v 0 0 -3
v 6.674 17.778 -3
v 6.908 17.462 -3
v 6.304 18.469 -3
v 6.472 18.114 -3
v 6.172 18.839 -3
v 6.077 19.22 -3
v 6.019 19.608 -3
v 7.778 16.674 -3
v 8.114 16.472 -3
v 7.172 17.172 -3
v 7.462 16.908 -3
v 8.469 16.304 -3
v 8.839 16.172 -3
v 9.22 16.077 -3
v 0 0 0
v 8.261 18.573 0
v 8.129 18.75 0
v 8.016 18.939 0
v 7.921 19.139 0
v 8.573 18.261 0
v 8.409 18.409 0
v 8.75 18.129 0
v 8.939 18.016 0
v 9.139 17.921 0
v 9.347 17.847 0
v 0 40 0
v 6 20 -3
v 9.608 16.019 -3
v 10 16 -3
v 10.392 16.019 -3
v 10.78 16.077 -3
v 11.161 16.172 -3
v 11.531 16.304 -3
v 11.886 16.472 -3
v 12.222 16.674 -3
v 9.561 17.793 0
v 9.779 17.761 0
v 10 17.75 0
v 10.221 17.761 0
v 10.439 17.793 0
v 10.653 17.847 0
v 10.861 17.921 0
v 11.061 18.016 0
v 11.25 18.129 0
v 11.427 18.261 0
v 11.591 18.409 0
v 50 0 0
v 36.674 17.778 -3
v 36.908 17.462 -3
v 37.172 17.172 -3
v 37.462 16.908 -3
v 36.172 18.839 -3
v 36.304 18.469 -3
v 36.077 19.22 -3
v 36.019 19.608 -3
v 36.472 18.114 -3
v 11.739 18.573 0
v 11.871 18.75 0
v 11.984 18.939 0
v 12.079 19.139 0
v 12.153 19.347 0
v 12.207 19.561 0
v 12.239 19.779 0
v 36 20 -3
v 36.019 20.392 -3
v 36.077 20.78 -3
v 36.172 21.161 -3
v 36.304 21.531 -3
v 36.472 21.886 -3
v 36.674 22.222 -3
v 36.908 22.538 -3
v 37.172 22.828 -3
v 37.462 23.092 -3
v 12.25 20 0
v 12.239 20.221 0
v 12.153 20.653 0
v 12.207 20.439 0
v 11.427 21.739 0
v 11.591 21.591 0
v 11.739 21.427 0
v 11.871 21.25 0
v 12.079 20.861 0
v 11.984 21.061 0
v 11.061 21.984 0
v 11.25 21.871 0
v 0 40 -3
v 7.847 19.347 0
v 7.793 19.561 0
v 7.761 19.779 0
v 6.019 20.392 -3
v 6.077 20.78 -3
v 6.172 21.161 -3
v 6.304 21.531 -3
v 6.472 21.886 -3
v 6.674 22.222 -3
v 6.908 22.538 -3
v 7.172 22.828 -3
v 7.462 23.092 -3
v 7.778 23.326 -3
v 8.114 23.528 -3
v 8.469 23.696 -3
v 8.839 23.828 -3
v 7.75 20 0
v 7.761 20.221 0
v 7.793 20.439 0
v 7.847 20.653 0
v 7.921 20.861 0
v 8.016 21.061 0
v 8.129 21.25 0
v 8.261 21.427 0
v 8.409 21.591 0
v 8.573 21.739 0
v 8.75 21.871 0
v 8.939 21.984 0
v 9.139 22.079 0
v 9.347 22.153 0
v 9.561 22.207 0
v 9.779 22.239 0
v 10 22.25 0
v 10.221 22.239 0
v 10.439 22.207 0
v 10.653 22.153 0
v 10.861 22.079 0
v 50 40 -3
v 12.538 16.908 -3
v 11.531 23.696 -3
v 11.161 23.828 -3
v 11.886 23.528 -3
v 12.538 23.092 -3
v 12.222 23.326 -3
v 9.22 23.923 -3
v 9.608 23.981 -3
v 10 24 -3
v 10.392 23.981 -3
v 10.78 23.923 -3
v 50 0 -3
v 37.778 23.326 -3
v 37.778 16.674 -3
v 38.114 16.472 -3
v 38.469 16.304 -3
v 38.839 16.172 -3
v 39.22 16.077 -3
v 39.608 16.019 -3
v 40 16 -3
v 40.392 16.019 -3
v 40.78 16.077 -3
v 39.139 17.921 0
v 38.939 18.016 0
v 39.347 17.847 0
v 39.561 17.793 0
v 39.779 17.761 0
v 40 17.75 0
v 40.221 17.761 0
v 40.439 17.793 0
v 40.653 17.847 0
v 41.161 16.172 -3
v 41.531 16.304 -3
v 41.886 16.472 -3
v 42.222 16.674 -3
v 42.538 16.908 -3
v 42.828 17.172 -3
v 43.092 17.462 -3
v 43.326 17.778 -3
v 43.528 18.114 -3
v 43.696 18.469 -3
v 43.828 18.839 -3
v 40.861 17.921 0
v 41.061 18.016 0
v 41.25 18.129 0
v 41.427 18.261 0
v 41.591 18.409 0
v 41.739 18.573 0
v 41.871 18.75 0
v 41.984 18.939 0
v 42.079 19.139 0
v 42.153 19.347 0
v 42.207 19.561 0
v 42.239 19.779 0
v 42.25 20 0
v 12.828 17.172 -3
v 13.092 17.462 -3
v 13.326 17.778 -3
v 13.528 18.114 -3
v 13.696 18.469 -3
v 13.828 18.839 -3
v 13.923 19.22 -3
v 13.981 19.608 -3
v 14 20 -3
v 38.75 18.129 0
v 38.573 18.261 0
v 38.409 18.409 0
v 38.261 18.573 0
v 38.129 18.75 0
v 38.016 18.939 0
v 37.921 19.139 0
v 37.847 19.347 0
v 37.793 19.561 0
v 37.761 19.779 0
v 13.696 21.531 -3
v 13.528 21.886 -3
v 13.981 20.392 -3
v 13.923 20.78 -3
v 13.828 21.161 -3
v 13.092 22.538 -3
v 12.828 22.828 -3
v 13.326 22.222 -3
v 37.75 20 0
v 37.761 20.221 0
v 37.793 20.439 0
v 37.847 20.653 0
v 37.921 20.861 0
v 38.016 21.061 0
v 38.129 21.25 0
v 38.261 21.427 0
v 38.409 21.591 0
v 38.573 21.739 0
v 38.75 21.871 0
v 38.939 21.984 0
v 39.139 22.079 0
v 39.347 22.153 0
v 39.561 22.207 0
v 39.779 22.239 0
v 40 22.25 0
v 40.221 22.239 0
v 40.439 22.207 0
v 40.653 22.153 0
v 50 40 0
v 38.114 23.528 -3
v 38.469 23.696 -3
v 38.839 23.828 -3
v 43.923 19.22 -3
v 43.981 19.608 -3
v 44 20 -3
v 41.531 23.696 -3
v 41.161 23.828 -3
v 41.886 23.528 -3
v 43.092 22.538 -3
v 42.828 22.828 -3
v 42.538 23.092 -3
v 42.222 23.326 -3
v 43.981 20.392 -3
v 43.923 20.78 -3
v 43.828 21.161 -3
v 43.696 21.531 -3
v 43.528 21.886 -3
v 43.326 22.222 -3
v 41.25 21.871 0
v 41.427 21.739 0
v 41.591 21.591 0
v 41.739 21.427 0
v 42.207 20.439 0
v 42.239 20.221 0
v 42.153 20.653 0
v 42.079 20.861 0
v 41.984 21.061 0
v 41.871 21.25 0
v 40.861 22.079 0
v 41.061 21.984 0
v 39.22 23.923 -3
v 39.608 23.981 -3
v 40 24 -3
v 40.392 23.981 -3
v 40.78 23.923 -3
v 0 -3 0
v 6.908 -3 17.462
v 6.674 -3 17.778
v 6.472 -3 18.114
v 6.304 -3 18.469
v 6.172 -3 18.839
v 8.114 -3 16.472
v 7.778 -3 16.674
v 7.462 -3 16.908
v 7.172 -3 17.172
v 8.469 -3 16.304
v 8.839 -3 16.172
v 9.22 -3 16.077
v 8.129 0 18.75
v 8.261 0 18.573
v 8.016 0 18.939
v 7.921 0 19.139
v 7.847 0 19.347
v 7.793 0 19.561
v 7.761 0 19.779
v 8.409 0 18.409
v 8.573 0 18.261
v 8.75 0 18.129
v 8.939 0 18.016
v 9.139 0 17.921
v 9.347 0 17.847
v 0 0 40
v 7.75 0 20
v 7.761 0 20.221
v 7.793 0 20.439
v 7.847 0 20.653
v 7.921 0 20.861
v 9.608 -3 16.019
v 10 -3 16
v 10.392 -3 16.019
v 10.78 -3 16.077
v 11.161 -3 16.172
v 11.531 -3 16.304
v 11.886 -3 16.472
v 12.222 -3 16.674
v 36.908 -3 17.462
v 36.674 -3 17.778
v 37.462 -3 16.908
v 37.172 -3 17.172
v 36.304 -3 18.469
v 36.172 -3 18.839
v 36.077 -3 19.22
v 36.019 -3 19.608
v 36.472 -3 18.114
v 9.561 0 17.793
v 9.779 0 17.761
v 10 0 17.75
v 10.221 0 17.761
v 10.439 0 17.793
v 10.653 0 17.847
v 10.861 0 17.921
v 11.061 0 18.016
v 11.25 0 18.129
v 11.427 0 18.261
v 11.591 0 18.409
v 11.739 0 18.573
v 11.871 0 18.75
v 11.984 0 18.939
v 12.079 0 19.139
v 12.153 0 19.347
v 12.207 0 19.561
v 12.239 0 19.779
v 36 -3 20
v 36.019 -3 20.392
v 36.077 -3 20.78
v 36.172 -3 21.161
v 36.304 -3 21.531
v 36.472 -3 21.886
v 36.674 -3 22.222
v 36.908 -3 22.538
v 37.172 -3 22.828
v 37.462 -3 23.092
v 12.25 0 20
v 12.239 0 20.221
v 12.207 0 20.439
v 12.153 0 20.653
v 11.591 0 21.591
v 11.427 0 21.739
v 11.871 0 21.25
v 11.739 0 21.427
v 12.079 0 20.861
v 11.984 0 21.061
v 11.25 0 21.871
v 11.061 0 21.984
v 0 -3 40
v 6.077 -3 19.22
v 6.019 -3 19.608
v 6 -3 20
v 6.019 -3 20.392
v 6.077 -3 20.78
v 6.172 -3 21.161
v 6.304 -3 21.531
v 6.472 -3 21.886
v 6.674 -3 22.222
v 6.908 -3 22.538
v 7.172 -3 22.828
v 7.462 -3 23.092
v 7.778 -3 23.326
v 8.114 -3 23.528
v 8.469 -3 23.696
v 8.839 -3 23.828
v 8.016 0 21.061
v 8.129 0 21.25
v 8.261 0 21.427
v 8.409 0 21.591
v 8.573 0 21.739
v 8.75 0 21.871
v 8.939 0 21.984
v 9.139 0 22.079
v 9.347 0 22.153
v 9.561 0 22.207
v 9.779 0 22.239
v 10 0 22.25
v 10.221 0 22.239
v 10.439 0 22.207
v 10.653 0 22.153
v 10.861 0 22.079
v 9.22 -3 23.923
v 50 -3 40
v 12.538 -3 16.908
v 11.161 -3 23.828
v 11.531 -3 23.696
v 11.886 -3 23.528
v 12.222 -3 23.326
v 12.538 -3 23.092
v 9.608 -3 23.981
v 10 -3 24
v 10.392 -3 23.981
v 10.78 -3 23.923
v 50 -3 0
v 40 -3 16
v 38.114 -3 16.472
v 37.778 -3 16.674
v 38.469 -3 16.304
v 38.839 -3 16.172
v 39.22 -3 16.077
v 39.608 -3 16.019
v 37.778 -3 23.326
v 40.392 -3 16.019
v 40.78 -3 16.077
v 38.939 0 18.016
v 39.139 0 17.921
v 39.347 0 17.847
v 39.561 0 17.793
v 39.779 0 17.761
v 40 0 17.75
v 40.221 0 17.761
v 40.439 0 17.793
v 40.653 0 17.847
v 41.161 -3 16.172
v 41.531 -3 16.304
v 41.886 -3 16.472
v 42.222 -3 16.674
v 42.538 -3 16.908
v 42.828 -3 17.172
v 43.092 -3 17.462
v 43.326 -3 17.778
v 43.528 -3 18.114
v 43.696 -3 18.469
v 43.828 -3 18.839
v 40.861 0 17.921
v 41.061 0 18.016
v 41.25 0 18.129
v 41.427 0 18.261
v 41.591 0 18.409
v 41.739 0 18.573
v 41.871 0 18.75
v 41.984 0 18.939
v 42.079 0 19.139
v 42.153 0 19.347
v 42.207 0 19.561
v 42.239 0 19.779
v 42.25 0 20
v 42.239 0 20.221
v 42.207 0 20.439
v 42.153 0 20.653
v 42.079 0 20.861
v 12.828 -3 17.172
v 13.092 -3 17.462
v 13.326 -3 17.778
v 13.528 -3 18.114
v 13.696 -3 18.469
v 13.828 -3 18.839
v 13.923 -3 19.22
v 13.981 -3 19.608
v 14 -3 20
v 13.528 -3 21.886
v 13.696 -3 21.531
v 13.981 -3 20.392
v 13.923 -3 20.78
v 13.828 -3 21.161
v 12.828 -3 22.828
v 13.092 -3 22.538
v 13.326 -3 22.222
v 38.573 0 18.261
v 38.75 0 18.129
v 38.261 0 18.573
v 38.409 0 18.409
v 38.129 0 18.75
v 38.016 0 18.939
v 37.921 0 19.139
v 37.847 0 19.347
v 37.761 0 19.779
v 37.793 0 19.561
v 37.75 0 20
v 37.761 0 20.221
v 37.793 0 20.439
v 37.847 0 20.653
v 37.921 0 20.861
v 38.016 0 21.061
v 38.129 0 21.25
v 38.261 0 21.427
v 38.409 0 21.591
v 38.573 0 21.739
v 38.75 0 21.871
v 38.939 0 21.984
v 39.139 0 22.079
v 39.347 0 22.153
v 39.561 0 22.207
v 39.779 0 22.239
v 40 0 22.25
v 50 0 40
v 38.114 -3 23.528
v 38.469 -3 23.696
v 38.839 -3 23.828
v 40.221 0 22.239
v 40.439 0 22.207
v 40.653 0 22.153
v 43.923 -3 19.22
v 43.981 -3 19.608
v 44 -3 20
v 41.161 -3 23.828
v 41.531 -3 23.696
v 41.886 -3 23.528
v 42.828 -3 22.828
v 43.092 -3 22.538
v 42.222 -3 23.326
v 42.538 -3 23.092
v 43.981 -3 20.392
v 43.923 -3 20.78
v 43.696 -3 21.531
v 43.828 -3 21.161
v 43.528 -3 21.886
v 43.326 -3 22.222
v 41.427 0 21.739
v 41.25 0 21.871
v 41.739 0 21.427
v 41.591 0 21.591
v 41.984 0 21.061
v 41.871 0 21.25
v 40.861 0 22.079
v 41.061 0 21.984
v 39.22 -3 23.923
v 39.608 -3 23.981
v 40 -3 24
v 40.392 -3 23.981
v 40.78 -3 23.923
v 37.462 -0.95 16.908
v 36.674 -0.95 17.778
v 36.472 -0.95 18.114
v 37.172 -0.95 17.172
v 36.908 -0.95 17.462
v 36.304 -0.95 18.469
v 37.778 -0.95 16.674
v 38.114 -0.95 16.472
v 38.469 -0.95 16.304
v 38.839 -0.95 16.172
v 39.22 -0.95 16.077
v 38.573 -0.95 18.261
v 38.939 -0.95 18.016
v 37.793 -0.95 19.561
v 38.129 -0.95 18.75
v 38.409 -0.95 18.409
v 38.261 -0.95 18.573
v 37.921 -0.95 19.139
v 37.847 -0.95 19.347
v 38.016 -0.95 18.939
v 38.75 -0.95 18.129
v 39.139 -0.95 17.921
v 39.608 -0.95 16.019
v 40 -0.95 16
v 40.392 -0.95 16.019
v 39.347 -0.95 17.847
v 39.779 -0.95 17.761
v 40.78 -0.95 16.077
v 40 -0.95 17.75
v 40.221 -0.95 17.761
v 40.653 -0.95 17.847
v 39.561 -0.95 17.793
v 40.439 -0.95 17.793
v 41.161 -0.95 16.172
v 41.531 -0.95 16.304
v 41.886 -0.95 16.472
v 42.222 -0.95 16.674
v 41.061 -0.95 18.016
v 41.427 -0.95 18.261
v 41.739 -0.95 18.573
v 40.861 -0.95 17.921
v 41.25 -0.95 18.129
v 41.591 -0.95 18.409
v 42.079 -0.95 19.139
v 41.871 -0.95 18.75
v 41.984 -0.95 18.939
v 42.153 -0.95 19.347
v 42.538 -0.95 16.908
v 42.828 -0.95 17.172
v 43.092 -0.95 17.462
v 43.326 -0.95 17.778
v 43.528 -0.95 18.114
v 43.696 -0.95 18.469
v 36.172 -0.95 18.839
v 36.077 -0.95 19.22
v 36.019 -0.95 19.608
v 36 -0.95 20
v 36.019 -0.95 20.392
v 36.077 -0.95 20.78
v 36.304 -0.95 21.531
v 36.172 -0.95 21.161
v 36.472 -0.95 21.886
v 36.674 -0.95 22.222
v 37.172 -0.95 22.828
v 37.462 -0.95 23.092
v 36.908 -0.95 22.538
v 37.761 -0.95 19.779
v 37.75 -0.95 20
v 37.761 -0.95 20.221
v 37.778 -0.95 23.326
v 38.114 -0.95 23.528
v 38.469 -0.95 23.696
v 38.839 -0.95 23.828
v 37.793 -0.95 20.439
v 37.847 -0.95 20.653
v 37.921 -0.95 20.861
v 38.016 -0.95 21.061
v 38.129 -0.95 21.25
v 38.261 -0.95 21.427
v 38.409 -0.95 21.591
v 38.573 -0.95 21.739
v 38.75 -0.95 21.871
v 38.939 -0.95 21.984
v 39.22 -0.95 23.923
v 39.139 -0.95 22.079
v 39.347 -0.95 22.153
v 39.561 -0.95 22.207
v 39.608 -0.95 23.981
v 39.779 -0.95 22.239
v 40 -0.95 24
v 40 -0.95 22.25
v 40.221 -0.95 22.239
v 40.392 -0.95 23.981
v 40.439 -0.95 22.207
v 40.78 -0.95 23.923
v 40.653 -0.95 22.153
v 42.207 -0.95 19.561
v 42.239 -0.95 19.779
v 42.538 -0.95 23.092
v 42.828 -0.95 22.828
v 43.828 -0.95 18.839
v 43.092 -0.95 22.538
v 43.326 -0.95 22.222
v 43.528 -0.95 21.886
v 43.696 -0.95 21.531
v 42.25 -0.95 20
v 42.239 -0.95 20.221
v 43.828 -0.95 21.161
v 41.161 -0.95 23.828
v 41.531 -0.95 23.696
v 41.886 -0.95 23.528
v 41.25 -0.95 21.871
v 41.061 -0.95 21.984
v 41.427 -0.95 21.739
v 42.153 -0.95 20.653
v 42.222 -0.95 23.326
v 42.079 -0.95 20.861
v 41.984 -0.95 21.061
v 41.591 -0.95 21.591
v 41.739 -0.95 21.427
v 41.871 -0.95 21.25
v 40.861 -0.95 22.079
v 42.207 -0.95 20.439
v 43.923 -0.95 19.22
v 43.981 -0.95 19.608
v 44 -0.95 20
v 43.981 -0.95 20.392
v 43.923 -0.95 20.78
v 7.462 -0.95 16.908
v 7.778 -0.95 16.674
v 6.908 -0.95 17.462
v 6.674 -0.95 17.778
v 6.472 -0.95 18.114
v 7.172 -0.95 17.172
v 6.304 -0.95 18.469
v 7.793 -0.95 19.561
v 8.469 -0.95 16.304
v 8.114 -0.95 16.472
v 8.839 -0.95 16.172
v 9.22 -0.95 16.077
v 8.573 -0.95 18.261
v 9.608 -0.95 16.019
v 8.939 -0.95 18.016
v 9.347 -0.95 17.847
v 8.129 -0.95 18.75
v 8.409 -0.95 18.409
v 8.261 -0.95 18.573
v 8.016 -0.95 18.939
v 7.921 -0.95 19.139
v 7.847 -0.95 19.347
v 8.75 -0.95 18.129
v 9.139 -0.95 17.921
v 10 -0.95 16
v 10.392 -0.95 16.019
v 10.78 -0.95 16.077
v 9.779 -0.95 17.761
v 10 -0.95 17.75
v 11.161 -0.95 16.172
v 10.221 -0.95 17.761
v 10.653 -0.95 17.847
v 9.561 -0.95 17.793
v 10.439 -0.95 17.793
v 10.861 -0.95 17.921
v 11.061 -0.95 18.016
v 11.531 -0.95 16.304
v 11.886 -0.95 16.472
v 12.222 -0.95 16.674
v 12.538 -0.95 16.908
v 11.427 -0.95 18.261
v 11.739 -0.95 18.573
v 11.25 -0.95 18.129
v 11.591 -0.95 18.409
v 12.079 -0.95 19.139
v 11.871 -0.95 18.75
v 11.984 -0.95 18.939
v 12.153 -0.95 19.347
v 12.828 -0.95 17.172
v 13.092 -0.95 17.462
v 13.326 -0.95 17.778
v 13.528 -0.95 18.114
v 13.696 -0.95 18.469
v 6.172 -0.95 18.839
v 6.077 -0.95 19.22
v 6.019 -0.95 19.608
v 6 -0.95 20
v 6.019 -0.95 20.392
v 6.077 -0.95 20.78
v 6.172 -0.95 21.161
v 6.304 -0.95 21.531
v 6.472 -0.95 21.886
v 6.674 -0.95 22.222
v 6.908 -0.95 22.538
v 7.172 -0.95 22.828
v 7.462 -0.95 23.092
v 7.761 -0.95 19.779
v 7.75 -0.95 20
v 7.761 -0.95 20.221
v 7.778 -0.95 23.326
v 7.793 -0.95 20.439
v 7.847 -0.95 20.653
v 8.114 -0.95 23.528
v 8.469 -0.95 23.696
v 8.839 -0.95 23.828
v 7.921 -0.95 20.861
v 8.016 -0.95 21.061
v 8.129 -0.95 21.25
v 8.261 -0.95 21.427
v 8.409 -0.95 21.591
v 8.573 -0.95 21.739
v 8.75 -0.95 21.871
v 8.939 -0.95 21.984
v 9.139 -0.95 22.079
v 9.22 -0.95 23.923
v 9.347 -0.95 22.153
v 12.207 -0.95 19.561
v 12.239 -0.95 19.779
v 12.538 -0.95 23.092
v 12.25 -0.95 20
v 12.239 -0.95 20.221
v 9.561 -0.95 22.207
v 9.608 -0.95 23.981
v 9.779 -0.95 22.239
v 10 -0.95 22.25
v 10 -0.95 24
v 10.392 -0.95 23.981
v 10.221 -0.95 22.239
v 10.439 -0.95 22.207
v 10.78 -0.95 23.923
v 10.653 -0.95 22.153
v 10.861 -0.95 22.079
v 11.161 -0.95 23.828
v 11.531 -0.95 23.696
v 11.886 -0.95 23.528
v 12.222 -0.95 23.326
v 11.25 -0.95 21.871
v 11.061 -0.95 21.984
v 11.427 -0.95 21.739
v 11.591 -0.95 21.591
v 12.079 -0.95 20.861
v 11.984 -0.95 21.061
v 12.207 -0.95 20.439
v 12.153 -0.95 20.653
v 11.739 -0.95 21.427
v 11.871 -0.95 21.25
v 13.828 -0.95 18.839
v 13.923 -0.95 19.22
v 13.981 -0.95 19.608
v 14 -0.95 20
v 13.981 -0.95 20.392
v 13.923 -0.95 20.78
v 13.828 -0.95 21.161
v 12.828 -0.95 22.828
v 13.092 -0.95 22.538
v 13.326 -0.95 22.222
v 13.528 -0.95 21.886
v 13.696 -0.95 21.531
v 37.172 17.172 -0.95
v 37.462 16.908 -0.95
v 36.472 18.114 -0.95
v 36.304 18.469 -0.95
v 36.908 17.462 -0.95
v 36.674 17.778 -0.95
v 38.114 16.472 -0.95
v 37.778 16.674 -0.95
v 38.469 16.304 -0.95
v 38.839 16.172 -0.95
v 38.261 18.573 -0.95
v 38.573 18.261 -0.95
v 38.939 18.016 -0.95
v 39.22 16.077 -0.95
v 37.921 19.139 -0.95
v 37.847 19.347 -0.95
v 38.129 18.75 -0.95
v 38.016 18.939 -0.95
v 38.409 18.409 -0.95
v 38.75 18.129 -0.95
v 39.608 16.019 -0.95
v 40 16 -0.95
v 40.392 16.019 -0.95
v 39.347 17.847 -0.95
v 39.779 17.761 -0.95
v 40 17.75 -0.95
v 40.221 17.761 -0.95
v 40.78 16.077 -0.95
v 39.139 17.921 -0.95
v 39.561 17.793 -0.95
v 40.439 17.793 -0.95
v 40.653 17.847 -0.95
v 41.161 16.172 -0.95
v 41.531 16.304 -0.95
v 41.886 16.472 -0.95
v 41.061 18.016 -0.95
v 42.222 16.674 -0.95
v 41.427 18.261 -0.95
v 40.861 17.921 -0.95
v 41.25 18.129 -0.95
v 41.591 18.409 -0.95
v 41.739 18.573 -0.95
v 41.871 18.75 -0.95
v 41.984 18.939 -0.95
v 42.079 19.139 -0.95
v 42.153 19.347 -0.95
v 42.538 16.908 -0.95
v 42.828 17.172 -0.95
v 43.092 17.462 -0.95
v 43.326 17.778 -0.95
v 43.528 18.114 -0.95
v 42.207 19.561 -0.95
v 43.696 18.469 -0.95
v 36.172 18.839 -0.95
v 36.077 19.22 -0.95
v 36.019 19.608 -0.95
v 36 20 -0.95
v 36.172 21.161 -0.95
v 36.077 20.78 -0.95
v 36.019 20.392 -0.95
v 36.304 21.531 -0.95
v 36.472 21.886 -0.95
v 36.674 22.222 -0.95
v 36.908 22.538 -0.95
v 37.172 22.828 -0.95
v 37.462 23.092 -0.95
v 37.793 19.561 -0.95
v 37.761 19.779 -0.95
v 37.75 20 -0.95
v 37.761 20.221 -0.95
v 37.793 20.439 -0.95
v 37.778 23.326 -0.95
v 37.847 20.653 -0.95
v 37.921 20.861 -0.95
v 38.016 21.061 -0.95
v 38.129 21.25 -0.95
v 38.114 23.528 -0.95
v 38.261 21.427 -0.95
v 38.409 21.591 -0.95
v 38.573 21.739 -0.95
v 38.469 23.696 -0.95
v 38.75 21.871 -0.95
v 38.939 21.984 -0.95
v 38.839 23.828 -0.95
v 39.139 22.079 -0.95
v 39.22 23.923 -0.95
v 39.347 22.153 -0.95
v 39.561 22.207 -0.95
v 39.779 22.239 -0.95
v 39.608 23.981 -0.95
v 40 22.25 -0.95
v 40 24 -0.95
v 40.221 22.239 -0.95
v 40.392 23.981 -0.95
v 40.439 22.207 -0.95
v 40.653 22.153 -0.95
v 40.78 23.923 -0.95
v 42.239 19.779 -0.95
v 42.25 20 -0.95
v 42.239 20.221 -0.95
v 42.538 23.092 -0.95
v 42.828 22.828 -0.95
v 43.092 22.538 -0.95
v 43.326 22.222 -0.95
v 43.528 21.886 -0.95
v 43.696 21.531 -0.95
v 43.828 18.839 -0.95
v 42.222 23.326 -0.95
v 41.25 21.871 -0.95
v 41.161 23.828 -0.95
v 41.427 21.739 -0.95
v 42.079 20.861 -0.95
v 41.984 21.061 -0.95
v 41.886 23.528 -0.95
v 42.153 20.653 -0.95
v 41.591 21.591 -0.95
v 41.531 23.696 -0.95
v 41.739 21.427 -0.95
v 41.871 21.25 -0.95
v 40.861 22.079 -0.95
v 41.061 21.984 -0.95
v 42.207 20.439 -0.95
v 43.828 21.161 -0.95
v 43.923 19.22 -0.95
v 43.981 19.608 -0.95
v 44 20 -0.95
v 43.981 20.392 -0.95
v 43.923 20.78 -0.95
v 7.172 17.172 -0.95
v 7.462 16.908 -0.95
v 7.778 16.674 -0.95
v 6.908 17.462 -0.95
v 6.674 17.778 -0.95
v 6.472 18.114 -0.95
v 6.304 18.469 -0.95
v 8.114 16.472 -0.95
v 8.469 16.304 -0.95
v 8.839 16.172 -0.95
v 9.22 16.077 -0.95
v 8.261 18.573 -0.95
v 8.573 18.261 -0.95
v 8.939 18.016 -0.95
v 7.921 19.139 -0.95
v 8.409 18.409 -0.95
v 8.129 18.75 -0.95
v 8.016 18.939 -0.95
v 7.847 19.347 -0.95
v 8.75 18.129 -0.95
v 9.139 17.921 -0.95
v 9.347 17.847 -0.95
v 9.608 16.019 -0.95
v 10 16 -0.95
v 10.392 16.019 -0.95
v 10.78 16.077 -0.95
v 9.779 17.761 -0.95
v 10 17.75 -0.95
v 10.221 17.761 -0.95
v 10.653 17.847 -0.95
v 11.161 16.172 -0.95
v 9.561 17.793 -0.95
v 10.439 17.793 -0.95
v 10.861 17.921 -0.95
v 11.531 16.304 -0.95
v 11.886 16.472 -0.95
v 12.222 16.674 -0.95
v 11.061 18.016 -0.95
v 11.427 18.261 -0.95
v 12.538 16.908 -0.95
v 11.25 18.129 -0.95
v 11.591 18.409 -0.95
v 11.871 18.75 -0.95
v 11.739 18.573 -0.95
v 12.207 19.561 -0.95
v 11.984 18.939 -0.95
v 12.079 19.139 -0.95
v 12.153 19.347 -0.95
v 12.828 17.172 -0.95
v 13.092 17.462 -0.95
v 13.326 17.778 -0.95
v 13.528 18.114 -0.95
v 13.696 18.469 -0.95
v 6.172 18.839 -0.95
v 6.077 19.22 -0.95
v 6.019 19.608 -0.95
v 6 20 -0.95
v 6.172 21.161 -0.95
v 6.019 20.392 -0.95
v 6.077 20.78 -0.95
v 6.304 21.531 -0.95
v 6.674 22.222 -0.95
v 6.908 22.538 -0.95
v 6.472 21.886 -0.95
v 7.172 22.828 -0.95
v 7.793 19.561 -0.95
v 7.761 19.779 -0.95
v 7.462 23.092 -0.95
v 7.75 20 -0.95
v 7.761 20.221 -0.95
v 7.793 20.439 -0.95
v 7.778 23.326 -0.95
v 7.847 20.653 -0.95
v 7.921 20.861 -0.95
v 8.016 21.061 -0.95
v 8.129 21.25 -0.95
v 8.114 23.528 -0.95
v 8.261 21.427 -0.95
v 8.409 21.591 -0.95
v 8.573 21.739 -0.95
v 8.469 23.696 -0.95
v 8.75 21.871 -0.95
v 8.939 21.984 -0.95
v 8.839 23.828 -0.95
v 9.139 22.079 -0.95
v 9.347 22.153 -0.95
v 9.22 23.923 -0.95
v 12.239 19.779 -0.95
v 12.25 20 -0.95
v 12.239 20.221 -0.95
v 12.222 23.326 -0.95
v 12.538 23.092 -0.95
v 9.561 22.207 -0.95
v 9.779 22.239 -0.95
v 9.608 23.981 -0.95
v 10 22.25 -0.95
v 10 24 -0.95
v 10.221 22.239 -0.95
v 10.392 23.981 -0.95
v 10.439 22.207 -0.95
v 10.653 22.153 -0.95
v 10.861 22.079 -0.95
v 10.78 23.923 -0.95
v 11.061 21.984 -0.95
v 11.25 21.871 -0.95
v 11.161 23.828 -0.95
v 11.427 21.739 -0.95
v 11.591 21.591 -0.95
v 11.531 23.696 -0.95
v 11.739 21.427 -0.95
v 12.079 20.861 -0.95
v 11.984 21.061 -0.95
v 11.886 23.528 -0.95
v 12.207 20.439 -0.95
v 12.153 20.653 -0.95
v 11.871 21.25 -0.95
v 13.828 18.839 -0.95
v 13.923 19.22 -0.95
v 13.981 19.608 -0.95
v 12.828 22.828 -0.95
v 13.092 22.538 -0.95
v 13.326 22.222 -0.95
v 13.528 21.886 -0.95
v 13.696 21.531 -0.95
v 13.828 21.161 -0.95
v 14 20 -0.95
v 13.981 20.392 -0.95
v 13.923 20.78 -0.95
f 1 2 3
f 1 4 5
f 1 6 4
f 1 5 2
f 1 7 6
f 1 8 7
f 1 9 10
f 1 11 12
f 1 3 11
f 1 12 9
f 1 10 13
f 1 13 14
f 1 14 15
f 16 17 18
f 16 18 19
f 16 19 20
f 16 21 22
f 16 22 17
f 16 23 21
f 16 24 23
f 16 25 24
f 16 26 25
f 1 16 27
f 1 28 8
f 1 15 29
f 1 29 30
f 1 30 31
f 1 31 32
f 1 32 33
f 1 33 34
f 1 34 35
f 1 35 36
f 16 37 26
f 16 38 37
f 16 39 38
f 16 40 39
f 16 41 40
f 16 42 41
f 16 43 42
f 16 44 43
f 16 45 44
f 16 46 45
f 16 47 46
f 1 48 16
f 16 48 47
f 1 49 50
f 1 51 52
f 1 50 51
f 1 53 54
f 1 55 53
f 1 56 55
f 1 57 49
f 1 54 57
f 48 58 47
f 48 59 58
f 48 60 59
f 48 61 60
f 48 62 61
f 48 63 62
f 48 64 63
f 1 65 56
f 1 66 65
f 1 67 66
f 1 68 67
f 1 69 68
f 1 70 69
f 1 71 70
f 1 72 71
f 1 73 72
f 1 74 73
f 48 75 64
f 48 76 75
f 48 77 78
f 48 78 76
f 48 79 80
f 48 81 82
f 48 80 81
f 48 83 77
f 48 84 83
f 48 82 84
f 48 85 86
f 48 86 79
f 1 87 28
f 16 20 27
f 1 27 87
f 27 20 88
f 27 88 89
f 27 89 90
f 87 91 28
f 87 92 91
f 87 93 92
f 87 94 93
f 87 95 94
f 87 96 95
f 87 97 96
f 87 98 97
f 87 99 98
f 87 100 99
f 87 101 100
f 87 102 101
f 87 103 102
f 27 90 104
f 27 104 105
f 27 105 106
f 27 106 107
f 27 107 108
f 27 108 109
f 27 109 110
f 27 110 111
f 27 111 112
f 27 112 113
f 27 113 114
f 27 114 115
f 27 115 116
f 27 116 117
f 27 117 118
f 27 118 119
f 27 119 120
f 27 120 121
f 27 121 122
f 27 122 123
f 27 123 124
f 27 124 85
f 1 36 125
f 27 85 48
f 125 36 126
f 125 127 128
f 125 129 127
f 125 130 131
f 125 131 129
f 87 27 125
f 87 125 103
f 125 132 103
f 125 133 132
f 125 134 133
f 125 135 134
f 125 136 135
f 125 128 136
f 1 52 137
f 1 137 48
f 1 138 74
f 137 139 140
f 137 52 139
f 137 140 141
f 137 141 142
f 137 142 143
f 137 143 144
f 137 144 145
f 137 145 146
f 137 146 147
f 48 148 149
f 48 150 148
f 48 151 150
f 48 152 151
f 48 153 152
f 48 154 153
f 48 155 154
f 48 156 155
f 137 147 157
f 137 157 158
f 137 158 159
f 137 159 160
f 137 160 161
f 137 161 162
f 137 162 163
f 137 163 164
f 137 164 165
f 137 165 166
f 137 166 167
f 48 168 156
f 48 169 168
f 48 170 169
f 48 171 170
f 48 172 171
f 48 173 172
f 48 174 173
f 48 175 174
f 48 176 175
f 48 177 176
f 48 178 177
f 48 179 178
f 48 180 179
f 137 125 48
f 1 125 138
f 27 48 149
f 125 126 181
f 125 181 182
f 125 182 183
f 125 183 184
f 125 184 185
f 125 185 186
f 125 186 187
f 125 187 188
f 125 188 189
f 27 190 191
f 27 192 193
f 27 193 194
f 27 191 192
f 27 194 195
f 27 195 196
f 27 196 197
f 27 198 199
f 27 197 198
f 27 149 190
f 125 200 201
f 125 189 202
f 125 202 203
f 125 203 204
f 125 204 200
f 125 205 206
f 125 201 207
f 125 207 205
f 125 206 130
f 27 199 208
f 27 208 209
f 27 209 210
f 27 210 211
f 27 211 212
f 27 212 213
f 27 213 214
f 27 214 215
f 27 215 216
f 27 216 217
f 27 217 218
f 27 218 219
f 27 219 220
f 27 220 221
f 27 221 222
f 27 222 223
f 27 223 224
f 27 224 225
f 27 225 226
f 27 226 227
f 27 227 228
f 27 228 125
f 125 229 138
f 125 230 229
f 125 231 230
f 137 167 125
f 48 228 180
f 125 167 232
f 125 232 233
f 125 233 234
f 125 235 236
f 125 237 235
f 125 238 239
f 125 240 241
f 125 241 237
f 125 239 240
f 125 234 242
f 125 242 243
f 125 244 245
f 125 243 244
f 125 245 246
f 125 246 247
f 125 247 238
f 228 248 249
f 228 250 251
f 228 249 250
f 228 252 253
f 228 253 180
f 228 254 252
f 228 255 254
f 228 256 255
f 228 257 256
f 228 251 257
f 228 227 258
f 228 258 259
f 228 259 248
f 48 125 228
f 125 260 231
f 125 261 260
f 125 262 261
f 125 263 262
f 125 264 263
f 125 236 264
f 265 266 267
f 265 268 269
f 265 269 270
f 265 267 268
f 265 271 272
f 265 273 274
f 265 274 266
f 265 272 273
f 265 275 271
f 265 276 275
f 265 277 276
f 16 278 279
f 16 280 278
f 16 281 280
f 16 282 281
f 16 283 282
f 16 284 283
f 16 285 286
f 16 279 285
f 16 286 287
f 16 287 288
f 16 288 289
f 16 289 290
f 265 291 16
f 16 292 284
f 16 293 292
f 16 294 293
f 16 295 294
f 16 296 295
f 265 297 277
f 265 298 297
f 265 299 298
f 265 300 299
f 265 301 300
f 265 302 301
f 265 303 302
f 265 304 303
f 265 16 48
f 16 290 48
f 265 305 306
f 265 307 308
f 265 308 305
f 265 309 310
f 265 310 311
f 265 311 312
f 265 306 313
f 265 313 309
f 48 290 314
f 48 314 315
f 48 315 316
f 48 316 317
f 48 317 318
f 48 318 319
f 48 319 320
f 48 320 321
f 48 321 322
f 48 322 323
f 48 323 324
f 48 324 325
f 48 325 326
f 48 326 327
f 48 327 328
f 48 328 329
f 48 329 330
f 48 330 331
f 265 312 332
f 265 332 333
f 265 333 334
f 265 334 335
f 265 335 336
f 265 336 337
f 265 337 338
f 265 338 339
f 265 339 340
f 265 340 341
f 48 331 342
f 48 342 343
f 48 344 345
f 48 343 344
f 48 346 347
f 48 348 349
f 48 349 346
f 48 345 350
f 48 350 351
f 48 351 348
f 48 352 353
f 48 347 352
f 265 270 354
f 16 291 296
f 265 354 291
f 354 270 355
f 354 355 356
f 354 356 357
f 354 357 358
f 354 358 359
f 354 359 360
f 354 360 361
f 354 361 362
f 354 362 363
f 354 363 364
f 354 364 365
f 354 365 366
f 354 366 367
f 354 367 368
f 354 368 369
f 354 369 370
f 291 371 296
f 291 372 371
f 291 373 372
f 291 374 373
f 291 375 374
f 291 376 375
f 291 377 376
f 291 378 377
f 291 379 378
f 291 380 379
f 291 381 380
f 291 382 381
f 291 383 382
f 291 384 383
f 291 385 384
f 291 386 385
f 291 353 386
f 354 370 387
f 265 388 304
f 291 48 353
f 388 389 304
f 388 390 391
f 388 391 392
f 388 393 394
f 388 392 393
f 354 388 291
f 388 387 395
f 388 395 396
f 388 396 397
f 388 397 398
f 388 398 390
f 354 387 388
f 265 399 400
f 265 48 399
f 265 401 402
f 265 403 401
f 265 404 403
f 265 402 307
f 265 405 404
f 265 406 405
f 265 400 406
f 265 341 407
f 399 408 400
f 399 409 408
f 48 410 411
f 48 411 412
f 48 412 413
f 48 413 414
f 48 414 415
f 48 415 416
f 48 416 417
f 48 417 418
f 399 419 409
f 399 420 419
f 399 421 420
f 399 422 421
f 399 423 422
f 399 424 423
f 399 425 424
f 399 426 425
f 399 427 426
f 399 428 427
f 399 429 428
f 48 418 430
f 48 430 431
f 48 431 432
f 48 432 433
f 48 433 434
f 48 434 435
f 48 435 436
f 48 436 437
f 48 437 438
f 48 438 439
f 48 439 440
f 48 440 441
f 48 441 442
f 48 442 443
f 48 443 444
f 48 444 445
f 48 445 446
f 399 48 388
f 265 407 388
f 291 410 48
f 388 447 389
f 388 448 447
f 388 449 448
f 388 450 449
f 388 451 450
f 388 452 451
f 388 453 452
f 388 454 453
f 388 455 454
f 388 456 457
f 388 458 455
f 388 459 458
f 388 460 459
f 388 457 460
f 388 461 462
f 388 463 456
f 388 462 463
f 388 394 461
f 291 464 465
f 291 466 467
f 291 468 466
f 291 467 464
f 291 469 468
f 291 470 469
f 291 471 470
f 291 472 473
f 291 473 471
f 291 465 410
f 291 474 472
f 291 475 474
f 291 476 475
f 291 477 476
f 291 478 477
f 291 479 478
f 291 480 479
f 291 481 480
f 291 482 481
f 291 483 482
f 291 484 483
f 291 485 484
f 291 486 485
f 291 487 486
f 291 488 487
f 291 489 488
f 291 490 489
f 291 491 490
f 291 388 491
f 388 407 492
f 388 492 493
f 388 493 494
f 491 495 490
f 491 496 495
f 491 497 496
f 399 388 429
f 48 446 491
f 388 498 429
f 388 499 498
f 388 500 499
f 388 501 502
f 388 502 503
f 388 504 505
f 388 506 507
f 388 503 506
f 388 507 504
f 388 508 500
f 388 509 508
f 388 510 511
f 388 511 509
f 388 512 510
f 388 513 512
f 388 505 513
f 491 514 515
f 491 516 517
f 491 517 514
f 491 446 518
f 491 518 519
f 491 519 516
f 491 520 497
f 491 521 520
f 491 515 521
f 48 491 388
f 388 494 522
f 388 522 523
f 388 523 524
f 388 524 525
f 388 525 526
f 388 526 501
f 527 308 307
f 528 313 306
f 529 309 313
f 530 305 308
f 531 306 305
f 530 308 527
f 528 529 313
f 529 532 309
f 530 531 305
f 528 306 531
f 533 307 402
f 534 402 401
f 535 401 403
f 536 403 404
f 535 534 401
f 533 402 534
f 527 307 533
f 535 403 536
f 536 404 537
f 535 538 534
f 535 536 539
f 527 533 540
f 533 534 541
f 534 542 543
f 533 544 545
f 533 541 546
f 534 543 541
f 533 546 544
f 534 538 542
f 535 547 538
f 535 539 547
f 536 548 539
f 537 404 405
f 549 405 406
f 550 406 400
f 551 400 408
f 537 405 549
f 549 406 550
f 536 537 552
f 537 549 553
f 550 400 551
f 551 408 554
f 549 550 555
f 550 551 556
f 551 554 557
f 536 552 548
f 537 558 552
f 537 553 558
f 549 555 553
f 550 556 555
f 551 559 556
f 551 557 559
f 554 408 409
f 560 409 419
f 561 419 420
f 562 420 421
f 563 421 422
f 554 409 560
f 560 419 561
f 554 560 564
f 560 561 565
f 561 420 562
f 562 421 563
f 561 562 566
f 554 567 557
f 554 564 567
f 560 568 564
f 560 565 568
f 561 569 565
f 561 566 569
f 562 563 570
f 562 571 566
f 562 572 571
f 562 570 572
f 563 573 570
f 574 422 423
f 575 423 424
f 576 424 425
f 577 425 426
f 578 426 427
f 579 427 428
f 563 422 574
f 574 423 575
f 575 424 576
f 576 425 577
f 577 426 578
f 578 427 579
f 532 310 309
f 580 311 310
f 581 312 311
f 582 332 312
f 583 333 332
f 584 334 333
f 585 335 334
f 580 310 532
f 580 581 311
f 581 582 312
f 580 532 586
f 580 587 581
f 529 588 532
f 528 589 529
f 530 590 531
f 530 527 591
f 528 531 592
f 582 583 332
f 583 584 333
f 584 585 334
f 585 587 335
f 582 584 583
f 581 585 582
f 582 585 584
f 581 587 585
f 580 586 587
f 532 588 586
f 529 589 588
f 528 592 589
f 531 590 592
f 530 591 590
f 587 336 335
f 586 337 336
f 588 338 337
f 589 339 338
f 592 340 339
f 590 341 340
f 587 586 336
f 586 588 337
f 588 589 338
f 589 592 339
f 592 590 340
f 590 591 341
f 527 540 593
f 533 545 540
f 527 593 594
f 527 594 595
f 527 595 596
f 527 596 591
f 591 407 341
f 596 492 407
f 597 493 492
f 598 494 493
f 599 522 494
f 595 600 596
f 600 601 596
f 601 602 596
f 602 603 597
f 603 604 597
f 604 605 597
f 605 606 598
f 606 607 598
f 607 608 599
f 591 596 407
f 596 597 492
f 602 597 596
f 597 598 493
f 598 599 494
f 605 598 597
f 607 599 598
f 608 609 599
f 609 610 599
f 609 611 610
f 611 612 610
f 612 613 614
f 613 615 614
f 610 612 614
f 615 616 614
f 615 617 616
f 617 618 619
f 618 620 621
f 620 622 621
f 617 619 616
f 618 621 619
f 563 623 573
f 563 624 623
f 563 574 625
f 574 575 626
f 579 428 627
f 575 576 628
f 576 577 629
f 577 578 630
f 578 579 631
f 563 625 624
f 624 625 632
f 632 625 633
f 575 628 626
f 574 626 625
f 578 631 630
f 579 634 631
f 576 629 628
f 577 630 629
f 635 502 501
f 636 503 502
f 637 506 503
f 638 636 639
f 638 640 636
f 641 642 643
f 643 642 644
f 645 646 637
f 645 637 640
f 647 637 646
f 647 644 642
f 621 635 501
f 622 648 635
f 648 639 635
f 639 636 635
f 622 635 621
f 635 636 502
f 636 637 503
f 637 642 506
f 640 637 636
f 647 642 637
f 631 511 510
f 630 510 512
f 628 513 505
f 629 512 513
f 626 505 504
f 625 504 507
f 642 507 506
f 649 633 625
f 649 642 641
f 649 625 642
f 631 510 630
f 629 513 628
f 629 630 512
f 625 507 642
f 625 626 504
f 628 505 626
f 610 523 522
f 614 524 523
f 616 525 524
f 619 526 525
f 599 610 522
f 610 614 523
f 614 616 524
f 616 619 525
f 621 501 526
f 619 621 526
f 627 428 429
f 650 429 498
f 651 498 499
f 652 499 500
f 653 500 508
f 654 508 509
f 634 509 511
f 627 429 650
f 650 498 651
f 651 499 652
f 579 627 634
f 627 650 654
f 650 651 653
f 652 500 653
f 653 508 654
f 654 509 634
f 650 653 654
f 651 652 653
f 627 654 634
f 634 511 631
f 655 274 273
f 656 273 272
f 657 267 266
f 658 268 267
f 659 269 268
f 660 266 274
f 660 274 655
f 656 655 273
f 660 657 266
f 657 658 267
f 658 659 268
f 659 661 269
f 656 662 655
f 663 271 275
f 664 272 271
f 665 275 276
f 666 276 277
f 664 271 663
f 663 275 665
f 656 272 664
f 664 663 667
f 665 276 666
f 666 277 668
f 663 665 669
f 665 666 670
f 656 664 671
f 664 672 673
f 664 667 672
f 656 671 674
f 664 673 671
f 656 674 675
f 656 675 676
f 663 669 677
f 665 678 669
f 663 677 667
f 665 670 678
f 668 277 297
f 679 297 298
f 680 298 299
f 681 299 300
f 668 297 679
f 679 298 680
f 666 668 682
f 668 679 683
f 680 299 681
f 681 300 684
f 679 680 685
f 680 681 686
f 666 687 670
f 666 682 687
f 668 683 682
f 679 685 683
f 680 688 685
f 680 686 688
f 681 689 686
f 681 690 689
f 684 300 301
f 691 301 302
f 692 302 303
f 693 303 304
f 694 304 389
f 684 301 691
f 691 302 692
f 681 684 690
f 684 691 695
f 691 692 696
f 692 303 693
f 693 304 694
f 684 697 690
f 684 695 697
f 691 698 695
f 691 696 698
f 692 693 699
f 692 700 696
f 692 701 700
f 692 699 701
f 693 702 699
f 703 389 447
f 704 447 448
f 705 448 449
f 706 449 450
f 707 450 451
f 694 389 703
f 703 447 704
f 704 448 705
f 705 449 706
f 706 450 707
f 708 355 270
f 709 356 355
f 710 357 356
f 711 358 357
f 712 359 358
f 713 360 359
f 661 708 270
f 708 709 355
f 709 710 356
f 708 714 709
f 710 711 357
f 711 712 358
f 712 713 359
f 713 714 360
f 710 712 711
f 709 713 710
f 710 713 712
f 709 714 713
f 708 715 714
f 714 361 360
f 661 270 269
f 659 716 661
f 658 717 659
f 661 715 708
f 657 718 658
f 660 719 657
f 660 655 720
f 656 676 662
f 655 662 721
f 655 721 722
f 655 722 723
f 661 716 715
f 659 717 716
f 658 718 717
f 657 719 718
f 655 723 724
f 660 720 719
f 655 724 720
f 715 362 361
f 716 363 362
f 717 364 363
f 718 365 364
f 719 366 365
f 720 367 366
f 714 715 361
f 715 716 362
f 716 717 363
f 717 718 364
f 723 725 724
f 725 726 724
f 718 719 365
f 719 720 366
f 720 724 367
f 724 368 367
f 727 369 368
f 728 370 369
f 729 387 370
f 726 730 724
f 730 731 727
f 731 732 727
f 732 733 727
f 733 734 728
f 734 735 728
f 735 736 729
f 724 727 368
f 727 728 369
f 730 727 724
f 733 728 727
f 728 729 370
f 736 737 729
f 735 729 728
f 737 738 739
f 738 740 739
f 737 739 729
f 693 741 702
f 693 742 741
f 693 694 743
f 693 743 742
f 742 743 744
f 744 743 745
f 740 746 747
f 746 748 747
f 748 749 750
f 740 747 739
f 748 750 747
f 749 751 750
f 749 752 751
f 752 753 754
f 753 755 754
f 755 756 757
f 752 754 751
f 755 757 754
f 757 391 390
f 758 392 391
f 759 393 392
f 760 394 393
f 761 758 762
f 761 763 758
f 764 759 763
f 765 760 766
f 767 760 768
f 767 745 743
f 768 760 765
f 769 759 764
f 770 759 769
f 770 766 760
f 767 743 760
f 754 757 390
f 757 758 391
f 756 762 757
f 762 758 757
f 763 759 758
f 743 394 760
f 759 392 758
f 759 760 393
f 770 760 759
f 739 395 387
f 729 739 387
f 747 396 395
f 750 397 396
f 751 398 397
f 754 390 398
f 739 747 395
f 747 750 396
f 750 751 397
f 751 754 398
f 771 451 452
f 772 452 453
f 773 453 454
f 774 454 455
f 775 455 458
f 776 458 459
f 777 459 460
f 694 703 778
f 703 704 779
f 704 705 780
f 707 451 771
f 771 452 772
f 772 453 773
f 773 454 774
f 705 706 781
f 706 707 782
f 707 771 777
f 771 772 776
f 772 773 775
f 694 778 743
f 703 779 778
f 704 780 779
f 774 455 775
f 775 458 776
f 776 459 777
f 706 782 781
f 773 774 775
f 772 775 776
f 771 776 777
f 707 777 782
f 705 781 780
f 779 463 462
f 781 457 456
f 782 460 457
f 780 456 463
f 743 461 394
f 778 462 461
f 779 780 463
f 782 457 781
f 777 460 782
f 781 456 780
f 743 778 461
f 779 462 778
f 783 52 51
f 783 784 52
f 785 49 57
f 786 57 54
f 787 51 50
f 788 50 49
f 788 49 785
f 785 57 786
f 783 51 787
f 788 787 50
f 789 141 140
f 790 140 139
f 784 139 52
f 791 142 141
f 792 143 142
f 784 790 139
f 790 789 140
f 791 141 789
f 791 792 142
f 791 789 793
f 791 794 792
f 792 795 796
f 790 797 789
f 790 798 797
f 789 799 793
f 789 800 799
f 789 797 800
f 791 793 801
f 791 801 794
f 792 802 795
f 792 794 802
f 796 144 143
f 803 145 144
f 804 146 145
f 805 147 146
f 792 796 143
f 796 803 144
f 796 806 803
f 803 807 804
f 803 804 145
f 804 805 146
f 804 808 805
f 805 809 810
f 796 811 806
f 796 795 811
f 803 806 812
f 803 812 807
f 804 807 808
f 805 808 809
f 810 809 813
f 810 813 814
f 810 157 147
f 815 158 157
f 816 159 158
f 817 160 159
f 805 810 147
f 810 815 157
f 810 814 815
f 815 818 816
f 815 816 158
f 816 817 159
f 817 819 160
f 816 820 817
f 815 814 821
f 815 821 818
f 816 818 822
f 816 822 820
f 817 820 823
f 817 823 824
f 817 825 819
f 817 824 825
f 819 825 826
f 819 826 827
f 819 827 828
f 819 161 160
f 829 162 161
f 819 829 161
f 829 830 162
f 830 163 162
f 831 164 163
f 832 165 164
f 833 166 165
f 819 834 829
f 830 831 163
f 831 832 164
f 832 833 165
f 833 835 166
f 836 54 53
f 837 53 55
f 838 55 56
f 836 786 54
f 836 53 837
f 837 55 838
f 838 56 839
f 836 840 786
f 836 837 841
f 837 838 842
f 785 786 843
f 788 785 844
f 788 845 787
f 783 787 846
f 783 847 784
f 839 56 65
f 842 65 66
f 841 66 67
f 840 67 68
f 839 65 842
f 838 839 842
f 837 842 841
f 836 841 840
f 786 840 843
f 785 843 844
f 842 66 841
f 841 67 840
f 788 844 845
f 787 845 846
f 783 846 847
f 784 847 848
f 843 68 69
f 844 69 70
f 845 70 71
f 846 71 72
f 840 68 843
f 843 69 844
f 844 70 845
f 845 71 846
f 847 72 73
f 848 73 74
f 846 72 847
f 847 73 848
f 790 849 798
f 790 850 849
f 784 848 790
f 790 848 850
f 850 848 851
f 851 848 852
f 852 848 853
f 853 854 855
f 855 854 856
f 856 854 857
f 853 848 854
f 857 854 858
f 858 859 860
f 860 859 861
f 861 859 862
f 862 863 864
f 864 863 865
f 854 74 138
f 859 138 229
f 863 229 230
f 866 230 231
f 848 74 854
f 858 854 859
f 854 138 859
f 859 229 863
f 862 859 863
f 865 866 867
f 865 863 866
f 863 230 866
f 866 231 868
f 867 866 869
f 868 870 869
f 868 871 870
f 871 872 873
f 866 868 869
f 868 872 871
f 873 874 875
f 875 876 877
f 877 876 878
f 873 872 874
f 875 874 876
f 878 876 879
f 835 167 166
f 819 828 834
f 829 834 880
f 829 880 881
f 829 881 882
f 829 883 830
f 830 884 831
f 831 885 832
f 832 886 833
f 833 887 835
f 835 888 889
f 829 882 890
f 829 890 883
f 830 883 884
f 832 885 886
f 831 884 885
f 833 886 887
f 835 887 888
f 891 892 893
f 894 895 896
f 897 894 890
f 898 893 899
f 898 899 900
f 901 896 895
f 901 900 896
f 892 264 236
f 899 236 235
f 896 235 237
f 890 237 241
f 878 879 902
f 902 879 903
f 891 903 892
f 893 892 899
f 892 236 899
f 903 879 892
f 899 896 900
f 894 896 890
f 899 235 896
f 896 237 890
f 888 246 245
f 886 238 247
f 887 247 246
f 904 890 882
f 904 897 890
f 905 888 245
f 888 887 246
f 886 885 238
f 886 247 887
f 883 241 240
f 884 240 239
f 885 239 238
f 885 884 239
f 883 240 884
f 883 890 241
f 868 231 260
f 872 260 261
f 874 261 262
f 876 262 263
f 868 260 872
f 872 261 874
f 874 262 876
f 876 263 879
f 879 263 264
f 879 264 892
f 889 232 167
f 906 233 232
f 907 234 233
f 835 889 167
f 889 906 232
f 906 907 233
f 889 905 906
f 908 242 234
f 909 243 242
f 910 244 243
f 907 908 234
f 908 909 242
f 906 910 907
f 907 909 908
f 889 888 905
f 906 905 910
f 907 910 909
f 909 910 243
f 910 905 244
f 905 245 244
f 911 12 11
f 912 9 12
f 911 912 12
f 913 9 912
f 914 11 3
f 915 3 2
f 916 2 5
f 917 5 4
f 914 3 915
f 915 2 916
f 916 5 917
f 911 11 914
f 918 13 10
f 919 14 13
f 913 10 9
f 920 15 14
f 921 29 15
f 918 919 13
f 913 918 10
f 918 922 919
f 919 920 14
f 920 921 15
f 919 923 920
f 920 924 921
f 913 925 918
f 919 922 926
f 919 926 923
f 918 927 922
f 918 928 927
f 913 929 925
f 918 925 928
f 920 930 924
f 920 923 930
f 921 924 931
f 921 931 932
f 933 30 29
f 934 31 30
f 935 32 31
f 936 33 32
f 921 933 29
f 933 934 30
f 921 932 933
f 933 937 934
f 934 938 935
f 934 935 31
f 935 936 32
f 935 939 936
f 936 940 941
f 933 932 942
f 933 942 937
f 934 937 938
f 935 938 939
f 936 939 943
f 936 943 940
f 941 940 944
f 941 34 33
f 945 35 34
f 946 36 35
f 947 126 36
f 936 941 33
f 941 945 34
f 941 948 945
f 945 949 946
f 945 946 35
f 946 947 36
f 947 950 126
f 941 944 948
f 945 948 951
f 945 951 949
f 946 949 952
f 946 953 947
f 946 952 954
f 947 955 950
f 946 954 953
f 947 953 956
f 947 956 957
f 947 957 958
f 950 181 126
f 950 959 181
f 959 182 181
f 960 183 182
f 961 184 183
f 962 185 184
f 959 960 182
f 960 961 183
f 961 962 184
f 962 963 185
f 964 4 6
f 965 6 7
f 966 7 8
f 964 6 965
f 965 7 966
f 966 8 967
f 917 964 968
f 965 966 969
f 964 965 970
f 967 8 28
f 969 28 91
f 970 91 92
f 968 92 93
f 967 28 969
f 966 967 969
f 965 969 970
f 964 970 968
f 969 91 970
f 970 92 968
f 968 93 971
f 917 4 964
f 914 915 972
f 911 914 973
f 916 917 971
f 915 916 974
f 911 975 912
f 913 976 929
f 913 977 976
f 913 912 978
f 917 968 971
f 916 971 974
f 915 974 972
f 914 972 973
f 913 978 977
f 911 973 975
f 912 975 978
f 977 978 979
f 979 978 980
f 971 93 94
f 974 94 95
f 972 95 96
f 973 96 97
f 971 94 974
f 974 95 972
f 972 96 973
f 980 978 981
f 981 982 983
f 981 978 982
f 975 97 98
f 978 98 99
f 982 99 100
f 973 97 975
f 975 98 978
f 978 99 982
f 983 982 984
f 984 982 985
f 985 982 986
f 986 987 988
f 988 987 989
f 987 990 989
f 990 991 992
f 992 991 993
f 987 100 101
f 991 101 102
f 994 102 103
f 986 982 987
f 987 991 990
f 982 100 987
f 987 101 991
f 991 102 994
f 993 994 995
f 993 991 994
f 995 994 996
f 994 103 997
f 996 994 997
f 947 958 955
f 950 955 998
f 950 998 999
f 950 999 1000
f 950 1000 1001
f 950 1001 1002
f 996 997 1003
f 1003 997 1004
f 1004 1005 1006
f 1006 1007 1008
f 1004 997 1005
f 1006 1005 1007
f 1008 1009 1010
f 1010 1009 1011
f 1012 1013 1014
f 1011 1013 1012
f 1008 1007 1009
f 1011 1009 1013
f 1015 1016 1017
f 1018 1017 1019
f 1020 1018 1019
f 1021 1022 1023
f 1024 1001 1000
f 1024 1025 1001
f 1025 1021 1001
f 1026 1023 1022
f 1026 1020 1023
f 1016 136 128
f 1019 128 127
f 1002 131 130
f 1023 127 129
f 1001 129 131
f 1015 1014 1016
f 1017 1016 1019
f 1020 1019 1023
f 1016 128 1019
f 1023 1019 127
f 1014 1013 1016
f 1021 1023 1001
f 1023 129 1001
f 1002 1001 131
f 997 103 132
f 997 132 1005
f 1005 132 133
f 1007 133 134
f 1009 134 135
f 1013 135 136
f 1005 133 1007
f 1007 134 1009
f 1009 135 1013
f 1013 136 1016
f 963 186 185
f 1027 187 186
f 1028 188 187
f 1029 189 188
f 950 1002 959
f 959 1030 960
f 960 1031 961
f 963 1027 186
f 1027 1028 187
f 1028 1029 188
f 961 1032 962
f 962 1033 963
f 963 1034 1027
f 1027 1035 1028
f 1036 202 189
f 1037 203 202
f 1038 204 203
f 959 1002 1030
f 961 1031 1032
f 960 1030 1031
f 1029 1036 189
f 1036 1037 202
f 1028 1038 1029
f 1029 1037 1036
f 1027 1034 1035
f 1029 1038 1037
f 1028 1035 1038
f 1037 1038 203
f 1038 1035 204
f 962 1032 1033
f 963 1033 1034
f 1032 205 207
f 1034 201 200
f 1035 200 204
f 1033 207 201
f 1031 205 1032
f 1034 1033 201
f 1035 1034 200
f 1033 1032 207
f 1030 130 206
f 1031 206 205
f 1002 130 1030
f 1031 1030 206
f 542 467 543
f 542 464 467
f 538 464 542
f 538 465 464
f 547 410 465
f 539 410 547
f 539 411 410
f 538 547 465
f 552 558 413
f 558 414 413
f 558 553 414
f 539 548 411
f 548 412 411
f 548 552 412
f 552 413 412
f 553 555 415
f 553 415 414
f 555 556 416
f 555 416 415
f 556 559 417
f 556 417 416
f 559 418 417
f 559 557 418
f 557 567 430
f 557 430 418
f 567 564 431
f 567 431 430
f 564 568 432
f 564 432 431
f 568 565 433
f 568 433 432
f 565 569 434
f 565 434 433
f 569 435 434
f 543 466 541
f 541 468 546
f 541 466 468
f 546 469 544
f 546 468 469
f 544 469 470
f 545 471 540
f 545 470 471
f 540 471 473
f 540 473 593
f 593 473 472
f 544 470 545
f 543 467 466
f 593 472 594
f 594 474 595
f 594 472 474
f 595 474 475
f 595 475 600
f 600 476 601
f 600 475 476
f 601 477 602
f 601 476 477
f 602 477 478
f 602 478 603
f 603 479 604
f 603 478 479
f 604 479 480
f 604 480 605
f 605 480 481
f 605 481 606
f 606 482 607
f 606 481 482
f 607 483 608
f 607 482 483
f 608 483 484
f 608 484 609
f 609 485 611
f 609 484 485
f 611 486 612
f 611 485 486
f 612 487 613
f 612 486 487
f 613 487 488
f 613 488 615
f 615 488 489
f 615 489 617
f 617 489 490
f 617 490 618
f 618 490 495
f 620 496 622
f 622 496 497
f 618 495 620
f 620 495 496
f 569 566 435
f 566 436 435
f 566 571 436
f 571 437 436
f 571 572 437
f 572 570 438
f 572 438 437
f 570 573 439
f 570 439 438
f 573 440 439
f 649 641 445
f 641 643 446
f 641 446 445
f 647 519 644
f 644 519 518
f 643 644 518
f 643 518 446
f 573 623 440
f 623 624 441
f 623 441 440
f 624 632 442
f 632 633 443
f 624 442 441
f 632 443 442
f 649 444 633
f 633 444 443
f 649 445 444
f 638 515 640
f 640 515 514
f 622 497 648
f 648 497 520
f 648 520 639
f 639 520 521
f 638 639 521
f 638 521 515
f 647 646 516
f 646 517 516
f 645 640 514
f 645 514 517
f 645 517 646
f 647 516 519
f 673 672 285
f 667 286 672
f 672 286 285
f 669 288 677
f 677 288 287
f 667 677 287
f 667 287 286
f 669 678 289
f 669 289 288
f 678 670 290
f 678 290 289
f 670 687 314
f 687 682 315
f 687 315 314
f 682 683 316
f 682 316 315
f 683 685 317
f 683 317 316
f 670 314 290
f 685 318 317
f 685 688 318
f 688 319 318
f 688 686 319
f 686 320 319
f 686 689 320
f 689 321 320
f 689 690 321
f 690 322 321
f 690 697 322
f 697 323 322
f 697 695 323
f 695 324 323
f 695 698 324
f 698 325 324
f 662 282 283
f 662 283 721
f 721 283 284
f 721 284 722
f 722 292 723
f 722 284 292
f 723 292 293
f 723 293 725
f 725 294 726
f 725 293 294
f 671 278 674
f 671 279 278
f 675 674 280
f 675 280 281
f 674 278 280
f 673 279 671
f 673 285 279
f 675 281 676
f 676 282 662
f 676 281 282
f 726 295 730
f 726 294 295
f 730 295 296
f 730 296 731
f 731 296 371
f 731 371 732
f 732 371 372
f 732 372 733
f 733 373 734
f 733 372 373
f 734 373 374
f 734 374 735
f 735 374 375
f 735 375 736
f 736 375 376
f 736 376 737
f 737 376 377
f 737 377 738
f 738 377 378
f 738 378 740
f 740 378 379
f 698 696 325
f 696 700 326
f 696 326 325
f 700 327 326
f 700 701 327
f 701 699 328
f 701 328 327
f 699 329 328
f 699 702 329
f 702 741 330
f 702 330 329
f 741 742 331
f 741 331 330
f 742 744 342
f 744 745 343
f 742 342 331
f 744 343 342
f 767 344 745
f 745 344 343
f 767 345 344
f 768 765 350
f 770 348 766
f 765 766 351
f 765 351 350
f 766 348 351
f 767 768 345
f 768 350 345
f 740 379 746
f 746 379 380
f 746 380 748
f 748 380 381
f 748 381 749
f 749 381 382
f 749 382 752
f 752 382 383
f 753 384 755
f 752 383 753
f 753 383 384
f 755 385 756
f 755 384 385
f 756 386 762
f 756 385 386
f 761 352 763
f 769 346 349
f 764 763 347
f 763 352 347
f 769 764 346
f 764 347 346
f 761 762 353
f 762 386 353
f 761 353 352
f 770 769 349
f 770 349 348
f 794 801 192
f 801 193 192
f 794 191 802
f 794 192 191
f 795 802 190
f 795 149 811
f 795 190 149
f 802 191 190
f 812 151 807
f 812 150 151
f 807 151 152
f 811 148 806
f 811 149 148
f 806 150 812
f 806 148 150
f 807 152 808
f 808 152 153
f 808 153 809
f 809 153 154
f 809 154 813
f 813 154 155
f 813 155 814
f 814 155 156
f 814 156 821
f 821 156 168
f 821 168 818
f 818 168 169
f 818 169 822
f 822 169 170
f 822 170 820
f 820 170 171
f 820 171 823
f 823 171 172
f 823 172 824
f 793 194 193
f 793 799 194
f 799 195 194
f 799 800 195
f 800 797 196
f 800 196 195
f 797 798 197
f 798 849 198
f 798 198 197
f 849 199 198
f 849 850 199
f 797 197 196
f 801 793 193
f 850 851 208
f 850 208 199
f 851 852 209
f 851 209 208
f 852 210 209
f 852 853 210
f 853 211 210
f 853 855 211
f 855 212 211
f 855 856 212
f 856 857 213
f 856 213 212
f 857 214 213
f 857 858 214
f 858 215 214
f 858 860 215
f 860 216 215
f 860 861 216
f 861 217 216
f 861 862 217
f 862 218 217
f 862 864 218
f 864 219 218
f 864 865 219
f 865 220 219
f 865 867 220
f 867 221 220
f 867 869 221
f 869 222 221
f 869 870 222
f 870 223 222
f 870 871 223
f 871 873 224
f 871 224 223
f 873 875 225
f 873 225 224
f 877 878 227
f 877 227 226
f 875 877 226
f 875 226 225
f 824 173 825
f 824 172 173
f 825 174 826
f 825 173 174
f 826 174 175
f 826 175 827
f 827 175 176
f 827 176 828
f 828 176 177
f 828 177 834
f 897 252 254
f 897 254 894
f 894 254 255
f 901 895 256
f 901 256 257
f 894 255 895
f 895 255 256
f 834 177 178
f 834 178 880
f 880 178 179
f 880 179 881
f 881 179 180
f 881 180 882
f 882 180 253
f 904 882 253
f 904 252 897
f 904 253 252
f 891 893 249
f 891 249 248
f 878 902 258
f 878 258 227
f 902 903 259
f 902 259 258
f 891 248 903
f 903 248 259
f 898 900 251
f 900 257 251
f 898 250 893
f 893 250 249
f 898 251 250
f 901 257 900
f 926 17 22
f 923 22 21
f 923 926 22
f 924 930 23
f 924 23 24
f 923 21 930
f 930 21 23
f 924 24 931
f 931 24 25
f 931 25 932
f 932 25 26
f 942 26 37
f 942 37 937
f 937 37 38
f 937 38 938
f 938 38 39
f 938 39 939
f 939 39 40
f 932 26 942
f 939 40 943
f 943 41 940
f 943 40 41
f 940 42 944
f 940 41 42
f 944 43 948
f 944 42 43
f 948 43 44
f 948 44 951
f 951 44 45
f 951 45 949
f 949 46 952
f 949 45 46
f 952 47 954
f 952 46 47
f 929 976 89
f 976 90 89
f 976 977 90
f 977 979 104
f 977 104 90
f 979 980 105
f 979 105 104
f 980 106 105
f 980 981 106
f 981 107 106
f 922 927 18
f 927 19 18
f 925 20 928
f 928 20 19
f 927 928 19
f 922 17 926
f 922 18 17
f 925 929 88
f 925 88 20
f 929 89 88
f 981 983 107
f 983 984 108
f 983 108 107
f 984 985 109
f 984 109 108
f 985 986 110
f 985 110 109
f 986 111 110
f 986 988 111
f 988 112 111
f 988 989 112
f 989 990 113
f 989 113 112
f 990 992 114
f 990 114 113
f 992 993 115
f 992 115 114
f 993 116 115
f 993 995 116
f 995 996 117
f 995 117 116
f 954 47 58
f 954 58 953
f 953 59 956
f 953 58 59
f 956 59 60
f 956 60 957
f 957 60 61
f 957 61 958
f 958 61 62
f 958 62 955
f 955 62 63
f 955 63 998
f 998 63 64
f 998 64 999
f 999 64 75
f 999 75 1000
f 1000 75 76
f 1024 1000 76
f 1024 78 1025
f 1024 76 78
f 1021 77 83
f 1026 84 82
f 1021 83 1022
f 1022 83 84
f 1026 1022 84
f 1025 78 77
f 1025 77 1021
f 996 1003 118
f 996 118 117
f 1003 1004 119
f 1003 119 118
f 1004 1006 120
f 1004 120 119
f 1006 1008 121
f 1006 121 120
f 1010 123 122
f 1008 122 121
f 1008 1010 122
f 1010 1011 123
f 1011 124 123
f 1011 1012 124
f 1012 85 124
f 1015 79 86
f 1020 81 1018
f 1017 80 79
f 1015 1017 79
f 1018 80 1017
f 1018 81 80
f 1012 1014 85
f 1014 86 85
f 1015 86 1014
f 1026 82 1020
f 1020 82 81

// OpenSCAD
$fn = 64;

// Dimensions
width = 50;
depth = 40;
height = 40;
thickness = 3;

// Hole specs
through_d = 4.5;
csink_d = 8;
csink_depth = 2;

// Hole positions
x1 = 10;
x2 = width - 10;
y_center = depth / 2;
z_center = height / 2;

module countersunk_hole_z_down(h=thickness) {
    union() {
        cylinder(h=csink_depth + 0.1, d=csink_d);
        translate([0, 0, csink_depth])
            cylinder(h=h - csink_depth + 0.2, d=through_d);
    }
}

module countersunk_hole_y_neg(h=thickness) {
    rotate([-90, 0, 0])
        union() {
            cylinder(h=csink_depth + 0.1, d=csink_d);
            translate([0, 0, csink_depth])
                cylinder(h=h - csink_depth + 0.2, d=through_d);
        }
}

difference() {
    union() {
        // Horizontal flange: top face at z=0, extends +Y, thickness toward -Z
        translate([0, 0, -thickness])
            cube([width, depth, thickness]);

        // Vertical flange: inner face at y=0, extends +Z, thickness toward -Y
        translate([0, -thickness, 0])
            cube([width, thickness, height]);
    }

    // Horizontal flange holes: on centerline, 10mm from left/right edges,
    // countersink on outer face (bottom, -Z)
    translate([x1, y_center, -thickness - 0.05])
        countersunk_hole_z_down(thickness + 0.1);
    translate([x2, y_center, -thickness - 0.05])
        countersunk_hole_z_down(thickness + 0.1);

    // Vertical flange holes: on centerline, 10mm from left/right edges,
    // countersink on outer face (back, -Y)
    translate([x1, -thickness - 0.05, z_center])
        countersunk_hole_y_neg(thickness + 0.1);
    translate([x2, -thickness - 0.05, z_center])
        countersunk_hole_y_neg(thickness + 0.1);
}
